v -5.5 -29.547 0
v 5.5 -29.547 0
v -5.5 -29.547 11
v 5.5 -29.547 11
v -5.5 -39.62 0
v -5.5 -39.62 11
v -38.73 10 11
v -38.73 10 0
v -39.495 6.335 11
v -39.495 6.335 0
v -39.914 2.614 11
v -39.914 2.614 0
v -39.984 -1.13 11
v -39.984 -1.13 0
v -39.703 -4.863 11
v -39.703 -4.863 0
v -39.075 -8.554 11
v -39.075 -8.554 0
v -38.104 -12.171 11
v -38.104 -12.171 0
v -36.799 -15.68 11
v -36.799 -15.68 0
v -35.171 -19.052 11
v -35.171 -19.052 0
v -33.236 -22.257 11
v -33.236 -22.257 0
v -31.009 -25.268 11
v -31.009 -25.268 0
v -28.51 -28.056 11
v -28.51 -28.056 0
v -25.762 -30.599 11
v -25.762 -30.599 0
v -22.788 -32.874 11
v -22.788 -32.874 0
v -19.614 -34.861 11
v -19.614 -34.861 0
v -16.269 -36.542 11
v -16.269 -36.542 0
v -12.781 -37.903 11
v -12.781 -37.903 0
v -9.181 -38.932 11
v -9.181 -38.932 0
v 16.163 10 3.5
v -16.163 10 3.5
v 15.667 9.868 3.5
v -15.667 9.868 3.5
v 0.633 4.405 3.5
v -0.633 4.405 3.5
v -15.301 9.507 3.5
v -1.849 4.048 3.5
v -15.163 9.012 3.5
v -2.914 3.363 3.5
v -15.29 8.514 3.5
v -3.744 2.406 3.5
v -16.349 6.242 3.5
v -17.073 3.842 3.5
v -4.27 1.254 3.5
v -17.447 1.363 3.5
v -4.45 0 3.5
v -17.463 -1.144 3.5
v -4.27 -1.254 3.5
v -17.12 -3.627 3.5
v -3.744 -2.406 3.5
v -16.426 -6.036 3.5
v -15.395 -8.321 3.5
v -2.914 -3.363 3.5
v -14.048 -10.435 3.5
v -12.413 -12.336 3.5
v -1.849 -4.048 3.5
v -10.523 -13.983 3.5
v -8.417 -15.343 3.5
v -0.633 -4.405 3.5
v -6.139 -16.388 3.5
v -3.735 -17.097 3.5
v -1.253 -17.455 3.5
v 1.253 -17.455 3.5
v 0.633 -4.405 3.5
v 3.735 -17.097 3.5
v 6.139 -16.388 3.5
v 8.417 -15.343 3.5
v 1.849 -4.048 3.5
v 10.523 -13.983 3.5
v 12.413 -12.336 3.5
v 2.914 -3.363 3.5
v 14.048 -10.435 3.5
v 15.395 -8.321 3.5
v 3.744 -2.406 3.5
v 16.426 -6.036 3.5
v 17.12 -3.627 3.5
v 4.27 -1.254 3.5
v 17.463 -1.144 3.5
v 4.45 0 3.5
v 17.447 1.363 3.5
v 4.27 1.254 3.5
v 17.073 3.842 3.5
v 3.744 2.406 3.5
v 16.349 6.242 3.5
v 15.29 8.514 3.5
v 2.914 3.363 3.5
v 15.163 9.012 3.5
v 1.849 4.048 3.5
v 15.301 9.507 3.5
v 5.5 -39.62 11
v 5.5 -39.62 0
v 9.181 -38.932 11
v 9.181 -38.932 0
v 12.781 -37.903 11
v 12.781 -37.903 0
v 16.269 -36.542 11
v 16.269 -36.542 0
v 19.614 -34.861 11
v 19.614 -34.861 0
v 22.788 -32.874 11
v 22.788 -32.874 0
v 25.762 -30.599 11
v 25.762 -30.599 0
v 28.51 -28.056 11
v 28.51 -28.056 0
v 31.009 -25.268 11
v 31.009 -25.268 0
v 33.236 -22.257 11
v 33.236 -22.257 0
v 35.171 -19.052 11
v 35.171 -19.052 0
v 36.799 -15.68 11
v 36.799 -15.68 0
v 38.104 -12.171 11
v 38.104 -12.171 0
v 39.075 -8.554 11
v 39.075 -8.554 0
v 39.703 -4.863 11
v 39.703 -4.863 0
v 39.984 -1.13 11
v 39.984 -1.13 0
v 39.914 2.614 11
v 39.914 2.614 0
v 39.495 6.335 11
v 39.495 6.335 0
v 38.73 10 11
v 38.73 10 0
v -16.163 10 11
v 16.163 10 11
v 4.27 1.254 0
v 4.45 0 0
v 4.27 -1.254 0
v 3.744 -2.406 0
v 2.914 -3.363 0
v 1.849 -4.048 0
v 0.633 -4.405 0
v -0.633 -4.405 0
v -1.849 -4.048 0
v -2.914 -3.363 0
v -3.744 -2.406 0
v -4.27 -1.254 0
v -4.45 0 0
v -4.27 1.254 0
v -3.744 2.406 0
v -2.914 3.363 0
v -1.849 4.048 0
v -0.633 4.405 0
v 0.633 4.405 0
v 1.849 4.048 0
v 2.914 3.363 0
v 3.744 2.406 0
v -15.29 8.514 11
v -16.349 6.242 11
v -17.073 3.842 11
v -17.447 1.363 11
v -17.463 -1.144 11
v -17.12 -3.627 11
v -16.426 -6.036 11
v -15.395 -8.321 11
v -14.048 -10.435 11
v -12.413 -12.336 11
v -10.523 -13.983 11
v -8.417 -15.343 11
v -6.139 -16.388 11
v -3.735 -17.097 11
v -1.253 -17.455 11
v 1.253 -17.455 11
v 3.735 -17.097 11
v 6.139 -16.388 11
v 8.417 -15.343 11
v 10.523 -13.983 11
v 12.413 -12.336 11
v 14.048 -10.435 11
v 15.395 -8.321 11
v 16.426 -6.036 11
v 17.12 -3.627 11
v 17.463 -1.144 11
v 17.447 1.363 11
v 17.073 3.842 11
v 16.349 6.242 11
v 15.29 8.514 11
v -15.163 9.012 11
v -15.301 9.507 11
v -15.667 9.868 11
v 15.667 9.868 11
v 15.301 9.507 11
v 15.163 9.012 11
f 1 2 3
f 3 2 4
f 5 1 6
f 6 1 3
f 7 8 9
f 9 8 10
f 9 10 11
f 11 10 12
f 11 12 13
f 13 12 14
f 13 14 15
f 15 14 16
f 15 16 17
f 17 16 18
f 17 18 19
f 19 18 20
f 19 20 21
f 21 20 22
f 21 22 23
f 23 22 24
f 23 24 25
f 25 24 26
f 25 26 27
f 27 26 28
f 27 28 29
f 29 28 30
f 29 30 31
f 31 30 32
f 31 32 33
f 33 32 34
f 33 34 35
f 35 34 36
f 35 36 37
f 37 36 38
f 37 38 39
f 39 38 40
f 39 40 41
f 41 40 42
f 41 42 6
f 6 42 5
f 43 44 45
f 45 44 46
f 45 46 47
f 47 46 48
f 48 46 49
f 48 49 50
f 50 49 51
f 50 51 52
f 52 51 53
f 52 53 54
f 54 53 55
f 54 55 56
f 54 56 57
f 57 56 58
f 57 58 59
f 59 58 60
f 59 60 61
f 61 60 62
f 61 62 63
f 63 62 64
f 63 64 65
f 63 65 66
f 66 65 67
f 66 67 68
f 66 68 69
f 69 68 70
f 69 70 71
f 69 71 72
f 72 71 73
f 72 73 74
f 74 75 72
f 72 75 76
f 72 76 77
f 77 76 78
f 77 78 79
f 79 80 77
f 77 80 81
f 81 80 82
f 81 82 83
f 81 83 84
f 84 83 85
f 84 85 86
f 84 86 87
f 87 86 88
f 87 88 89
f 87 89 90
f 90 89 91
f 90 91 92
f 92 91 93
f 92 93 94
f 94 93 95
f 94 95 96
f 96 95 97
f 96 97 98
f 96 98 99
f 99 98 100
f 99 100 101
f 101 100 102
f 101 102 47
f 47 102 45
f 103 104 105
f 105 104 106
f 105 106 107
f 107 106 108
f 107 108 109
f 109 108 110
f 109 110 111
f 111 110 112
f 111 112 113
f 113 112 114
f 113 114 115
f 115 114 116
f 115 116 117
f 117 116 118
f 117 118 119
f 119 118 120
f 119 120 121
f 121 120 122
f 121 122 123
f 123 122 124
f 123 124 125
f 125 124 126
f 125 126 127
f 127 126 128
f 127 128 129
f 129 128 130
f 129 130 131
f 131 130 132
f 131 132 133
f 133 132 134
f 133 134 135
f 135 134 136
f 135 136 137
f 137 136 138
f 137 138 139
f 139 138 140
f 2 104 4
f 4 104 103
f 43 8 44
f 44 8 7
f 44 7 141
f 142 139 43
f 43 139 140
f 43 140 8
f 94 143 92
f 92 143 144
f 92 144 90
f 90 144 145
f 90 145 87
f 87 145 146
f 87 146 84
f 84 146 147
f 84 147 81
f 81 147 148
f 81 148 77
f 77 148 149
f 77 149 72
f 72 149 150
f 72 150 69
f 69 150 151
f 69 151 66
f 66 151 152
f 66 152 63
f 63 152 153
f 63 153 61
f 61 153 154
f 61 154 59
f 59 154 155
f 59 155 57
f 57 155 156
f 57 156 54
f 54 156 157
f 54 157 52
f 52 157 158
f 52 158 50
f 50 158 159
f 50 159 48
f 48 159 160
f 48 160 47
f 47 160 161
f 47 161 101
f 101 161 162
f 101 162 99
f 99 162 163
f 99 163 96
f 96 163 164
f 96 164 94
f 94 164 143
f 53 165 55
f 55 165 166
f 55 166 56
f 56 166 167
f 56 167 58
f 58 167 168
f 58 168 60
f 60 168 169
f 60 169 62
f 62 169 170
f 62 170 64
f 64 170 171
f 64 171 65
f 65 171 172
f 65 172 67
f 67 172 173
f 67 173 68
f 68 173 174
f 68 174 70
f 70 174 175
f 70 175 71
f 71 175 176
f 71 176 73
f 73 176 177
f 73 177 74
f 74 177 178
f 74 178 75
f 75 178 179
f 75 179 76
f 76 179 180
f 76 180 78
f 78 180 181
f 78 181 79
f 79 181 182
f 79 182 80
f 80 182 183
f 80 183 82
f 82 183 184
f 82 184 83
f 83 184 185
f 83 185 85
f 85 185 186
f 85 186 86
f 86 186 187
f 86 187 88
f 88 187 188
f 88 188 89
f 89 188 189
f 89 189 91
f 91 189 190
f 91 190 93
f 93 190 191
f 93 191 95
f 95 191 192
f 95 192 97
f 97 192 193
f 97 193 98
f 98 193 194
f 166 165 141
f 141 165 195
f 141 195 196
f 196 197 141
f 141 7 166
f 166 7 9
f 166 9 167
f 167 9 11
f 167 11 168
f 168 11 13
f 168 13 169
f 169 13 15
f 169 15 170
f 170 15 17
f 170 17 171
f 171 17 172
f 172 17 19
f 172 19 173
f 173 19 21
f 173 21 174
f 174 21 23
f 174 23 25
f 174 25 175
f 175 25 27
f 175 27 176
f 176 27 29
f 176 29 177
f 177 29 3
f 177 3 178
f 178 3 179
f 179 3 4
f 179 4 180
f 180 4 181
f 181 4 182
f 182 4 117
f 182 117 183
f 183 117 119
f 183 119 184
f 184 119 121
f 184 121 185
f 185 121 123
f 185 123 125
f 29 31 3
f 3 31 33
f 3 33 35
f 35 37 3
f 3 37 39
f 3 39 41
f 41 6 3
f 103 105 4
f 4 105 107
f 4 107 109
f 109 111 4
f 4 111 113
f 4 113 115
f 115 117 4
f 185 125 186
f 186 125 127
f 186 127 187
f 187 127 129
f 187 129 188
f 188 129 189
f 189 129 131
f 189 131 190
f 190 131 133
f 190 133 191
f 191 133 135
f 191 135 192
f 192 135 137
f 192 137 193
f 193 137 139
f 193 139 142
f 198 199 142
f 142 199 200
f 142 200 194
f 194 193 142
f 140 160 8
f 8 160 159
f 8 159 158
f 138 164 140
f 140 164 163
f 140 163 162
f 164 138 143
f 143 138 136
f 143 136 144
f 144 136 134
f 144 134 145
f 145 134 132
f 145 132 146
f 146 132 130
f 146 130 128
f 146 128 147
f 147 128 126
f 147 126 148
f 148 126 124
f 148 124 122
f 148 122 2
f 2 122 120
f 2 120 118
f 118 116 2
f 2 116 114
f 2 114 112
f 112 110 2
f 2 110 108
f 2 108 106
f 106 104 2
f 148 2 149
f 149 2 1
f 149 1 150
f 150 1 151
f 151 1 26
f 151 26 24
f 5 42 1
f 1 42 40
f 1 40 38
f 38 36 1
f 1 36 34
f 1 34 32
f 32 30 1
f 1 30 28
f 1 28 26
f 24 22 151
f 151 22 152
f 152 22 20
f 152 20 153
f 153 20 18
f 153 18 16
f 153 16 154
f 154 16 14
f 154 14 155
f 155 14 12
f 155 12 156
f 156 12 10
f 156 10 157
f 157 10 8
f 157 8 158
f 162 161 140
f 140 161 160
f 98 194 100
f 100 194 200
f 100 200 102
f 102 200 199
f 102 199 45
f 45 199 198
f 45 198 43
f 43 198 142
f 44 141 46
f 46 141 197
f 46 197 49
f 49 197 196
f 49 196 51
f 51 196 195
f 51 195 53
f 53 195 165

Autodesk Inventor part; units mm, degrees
ref_plane "YZ Plane" through (0, 0, 0) normal (1, 0, 0) x (0, 1, 0)
ref_plane "XZ Plane" through (0, 0, 0) normal (0, 1, 0) x (-1, 0, 0)
ref_plane "XY Plane" through (0, 0, 0) normal (0, 0, 1) x (1, 0, 0)
sketch "Эскиз1" plane through (0, 0, 0) normal (0, 0, 1) x (1, 0, 0)
  line L0 (0, 0) -> (-6, 0) construction
  line L1 (-6, 0) -> (-6, -27.9727) construction
  line L2 (-6, -27.9727) -> (0, -27.9727) construction
  line L3 (0, -27.9727) -> (0, 0) construction
  line L4 (6, -39.5474) -> (6, -29.5474)
  line L5 (6, -29.5474) -> (-6, -29.5474)
  line L6 (-6, -29.5474) -> (-6, -39.5474)
  circle A0 centre (0, 0) radius 4.45
  circle A1 centre (0, 0) radius 40
  line L7 (29.5474, -6) -> (39.5474, -6)
  line L8 (29.5474, 6) -> (29.5474, -6)
  line L9 (39.5474, 6) -> (29.5474, 6)
  line L10 (6, 29.5474) -> (6, 39.5474)
  line L11 (-6, 29.5474) -> (6, 29.5474)
  line L12 (-6, 39.5474) -> (-6, 29.5474)
  line L13 (-29.5474, 6) -> (-39.5474, 6)
  line L14 (-29.5474, -6) -> (-29.5474, 6)
  line L15 (-39.5474, -6) -> (-29.5474, -6)
  line L16 (38.7298, 10) -> (-38.7298, 10)
  circle A2 centre (0, 0) radius 17.5
  line L17 (0, -40) -> (0, -29.6)
  line L18 (0, -29.6) -> (-6, -29.6)
  line L19 (0, -29.6) -> (6, -29.6)
  line L20 (5.5, -29.5474) -> (5.5, -39.6201)
  line L21 (-5.5, -29.5474) -> (-5.5, -39.6201)
  point P0 (6, -34.4819)
  point P1 (6, -27.9727)
  point P2 (6, -39.5474)
  point P3 (6, -39.5474)
  point P4 (-14.3614, 10)
  point P5 (14.3614, 10)
  point P6 (5.5, -29.6)
  point P7 (-5.5, -29.6)
  dimension "d1" = 6
  dimension "d2" = 12
  dimension "d3" = 10
  dimension "d6" = 8.9
  dimension "d12" = 80
  dimension "d15" = 360
  dimension "d19" = 35
  dimension "d24" = 10.4
  dimension "d25" = 0.5
ref_plane "РабПлоскость2" through (0, 0, 0.2) normal (0, 0, 1) x (1, 0, 0)
extrude "Выдавливание4" add sketch "Эскиз1" along normal blind 3.5 contours A2 L16 picked at (-0.1788, 8.1392)
extrude "Выдавливание5" add sketch "Эскиз1" along normal blind 11 contours A1 L20 L19 L4 | L4 L5 L6 A1 L15 L14 L13 L16 A2 L9 L8 L7 | L19 L20 L5 L4 | L7 L8 L9 A1 | A1 L6 L18 L21 | L21 L18 L6 L5 | A1 L13 L14 L15
fillet "Сопряжение1" radius 1 2 edges at (14.3614, 10, 7.25) (-14.3614, 10, 7.25)
properties part number "circle"
